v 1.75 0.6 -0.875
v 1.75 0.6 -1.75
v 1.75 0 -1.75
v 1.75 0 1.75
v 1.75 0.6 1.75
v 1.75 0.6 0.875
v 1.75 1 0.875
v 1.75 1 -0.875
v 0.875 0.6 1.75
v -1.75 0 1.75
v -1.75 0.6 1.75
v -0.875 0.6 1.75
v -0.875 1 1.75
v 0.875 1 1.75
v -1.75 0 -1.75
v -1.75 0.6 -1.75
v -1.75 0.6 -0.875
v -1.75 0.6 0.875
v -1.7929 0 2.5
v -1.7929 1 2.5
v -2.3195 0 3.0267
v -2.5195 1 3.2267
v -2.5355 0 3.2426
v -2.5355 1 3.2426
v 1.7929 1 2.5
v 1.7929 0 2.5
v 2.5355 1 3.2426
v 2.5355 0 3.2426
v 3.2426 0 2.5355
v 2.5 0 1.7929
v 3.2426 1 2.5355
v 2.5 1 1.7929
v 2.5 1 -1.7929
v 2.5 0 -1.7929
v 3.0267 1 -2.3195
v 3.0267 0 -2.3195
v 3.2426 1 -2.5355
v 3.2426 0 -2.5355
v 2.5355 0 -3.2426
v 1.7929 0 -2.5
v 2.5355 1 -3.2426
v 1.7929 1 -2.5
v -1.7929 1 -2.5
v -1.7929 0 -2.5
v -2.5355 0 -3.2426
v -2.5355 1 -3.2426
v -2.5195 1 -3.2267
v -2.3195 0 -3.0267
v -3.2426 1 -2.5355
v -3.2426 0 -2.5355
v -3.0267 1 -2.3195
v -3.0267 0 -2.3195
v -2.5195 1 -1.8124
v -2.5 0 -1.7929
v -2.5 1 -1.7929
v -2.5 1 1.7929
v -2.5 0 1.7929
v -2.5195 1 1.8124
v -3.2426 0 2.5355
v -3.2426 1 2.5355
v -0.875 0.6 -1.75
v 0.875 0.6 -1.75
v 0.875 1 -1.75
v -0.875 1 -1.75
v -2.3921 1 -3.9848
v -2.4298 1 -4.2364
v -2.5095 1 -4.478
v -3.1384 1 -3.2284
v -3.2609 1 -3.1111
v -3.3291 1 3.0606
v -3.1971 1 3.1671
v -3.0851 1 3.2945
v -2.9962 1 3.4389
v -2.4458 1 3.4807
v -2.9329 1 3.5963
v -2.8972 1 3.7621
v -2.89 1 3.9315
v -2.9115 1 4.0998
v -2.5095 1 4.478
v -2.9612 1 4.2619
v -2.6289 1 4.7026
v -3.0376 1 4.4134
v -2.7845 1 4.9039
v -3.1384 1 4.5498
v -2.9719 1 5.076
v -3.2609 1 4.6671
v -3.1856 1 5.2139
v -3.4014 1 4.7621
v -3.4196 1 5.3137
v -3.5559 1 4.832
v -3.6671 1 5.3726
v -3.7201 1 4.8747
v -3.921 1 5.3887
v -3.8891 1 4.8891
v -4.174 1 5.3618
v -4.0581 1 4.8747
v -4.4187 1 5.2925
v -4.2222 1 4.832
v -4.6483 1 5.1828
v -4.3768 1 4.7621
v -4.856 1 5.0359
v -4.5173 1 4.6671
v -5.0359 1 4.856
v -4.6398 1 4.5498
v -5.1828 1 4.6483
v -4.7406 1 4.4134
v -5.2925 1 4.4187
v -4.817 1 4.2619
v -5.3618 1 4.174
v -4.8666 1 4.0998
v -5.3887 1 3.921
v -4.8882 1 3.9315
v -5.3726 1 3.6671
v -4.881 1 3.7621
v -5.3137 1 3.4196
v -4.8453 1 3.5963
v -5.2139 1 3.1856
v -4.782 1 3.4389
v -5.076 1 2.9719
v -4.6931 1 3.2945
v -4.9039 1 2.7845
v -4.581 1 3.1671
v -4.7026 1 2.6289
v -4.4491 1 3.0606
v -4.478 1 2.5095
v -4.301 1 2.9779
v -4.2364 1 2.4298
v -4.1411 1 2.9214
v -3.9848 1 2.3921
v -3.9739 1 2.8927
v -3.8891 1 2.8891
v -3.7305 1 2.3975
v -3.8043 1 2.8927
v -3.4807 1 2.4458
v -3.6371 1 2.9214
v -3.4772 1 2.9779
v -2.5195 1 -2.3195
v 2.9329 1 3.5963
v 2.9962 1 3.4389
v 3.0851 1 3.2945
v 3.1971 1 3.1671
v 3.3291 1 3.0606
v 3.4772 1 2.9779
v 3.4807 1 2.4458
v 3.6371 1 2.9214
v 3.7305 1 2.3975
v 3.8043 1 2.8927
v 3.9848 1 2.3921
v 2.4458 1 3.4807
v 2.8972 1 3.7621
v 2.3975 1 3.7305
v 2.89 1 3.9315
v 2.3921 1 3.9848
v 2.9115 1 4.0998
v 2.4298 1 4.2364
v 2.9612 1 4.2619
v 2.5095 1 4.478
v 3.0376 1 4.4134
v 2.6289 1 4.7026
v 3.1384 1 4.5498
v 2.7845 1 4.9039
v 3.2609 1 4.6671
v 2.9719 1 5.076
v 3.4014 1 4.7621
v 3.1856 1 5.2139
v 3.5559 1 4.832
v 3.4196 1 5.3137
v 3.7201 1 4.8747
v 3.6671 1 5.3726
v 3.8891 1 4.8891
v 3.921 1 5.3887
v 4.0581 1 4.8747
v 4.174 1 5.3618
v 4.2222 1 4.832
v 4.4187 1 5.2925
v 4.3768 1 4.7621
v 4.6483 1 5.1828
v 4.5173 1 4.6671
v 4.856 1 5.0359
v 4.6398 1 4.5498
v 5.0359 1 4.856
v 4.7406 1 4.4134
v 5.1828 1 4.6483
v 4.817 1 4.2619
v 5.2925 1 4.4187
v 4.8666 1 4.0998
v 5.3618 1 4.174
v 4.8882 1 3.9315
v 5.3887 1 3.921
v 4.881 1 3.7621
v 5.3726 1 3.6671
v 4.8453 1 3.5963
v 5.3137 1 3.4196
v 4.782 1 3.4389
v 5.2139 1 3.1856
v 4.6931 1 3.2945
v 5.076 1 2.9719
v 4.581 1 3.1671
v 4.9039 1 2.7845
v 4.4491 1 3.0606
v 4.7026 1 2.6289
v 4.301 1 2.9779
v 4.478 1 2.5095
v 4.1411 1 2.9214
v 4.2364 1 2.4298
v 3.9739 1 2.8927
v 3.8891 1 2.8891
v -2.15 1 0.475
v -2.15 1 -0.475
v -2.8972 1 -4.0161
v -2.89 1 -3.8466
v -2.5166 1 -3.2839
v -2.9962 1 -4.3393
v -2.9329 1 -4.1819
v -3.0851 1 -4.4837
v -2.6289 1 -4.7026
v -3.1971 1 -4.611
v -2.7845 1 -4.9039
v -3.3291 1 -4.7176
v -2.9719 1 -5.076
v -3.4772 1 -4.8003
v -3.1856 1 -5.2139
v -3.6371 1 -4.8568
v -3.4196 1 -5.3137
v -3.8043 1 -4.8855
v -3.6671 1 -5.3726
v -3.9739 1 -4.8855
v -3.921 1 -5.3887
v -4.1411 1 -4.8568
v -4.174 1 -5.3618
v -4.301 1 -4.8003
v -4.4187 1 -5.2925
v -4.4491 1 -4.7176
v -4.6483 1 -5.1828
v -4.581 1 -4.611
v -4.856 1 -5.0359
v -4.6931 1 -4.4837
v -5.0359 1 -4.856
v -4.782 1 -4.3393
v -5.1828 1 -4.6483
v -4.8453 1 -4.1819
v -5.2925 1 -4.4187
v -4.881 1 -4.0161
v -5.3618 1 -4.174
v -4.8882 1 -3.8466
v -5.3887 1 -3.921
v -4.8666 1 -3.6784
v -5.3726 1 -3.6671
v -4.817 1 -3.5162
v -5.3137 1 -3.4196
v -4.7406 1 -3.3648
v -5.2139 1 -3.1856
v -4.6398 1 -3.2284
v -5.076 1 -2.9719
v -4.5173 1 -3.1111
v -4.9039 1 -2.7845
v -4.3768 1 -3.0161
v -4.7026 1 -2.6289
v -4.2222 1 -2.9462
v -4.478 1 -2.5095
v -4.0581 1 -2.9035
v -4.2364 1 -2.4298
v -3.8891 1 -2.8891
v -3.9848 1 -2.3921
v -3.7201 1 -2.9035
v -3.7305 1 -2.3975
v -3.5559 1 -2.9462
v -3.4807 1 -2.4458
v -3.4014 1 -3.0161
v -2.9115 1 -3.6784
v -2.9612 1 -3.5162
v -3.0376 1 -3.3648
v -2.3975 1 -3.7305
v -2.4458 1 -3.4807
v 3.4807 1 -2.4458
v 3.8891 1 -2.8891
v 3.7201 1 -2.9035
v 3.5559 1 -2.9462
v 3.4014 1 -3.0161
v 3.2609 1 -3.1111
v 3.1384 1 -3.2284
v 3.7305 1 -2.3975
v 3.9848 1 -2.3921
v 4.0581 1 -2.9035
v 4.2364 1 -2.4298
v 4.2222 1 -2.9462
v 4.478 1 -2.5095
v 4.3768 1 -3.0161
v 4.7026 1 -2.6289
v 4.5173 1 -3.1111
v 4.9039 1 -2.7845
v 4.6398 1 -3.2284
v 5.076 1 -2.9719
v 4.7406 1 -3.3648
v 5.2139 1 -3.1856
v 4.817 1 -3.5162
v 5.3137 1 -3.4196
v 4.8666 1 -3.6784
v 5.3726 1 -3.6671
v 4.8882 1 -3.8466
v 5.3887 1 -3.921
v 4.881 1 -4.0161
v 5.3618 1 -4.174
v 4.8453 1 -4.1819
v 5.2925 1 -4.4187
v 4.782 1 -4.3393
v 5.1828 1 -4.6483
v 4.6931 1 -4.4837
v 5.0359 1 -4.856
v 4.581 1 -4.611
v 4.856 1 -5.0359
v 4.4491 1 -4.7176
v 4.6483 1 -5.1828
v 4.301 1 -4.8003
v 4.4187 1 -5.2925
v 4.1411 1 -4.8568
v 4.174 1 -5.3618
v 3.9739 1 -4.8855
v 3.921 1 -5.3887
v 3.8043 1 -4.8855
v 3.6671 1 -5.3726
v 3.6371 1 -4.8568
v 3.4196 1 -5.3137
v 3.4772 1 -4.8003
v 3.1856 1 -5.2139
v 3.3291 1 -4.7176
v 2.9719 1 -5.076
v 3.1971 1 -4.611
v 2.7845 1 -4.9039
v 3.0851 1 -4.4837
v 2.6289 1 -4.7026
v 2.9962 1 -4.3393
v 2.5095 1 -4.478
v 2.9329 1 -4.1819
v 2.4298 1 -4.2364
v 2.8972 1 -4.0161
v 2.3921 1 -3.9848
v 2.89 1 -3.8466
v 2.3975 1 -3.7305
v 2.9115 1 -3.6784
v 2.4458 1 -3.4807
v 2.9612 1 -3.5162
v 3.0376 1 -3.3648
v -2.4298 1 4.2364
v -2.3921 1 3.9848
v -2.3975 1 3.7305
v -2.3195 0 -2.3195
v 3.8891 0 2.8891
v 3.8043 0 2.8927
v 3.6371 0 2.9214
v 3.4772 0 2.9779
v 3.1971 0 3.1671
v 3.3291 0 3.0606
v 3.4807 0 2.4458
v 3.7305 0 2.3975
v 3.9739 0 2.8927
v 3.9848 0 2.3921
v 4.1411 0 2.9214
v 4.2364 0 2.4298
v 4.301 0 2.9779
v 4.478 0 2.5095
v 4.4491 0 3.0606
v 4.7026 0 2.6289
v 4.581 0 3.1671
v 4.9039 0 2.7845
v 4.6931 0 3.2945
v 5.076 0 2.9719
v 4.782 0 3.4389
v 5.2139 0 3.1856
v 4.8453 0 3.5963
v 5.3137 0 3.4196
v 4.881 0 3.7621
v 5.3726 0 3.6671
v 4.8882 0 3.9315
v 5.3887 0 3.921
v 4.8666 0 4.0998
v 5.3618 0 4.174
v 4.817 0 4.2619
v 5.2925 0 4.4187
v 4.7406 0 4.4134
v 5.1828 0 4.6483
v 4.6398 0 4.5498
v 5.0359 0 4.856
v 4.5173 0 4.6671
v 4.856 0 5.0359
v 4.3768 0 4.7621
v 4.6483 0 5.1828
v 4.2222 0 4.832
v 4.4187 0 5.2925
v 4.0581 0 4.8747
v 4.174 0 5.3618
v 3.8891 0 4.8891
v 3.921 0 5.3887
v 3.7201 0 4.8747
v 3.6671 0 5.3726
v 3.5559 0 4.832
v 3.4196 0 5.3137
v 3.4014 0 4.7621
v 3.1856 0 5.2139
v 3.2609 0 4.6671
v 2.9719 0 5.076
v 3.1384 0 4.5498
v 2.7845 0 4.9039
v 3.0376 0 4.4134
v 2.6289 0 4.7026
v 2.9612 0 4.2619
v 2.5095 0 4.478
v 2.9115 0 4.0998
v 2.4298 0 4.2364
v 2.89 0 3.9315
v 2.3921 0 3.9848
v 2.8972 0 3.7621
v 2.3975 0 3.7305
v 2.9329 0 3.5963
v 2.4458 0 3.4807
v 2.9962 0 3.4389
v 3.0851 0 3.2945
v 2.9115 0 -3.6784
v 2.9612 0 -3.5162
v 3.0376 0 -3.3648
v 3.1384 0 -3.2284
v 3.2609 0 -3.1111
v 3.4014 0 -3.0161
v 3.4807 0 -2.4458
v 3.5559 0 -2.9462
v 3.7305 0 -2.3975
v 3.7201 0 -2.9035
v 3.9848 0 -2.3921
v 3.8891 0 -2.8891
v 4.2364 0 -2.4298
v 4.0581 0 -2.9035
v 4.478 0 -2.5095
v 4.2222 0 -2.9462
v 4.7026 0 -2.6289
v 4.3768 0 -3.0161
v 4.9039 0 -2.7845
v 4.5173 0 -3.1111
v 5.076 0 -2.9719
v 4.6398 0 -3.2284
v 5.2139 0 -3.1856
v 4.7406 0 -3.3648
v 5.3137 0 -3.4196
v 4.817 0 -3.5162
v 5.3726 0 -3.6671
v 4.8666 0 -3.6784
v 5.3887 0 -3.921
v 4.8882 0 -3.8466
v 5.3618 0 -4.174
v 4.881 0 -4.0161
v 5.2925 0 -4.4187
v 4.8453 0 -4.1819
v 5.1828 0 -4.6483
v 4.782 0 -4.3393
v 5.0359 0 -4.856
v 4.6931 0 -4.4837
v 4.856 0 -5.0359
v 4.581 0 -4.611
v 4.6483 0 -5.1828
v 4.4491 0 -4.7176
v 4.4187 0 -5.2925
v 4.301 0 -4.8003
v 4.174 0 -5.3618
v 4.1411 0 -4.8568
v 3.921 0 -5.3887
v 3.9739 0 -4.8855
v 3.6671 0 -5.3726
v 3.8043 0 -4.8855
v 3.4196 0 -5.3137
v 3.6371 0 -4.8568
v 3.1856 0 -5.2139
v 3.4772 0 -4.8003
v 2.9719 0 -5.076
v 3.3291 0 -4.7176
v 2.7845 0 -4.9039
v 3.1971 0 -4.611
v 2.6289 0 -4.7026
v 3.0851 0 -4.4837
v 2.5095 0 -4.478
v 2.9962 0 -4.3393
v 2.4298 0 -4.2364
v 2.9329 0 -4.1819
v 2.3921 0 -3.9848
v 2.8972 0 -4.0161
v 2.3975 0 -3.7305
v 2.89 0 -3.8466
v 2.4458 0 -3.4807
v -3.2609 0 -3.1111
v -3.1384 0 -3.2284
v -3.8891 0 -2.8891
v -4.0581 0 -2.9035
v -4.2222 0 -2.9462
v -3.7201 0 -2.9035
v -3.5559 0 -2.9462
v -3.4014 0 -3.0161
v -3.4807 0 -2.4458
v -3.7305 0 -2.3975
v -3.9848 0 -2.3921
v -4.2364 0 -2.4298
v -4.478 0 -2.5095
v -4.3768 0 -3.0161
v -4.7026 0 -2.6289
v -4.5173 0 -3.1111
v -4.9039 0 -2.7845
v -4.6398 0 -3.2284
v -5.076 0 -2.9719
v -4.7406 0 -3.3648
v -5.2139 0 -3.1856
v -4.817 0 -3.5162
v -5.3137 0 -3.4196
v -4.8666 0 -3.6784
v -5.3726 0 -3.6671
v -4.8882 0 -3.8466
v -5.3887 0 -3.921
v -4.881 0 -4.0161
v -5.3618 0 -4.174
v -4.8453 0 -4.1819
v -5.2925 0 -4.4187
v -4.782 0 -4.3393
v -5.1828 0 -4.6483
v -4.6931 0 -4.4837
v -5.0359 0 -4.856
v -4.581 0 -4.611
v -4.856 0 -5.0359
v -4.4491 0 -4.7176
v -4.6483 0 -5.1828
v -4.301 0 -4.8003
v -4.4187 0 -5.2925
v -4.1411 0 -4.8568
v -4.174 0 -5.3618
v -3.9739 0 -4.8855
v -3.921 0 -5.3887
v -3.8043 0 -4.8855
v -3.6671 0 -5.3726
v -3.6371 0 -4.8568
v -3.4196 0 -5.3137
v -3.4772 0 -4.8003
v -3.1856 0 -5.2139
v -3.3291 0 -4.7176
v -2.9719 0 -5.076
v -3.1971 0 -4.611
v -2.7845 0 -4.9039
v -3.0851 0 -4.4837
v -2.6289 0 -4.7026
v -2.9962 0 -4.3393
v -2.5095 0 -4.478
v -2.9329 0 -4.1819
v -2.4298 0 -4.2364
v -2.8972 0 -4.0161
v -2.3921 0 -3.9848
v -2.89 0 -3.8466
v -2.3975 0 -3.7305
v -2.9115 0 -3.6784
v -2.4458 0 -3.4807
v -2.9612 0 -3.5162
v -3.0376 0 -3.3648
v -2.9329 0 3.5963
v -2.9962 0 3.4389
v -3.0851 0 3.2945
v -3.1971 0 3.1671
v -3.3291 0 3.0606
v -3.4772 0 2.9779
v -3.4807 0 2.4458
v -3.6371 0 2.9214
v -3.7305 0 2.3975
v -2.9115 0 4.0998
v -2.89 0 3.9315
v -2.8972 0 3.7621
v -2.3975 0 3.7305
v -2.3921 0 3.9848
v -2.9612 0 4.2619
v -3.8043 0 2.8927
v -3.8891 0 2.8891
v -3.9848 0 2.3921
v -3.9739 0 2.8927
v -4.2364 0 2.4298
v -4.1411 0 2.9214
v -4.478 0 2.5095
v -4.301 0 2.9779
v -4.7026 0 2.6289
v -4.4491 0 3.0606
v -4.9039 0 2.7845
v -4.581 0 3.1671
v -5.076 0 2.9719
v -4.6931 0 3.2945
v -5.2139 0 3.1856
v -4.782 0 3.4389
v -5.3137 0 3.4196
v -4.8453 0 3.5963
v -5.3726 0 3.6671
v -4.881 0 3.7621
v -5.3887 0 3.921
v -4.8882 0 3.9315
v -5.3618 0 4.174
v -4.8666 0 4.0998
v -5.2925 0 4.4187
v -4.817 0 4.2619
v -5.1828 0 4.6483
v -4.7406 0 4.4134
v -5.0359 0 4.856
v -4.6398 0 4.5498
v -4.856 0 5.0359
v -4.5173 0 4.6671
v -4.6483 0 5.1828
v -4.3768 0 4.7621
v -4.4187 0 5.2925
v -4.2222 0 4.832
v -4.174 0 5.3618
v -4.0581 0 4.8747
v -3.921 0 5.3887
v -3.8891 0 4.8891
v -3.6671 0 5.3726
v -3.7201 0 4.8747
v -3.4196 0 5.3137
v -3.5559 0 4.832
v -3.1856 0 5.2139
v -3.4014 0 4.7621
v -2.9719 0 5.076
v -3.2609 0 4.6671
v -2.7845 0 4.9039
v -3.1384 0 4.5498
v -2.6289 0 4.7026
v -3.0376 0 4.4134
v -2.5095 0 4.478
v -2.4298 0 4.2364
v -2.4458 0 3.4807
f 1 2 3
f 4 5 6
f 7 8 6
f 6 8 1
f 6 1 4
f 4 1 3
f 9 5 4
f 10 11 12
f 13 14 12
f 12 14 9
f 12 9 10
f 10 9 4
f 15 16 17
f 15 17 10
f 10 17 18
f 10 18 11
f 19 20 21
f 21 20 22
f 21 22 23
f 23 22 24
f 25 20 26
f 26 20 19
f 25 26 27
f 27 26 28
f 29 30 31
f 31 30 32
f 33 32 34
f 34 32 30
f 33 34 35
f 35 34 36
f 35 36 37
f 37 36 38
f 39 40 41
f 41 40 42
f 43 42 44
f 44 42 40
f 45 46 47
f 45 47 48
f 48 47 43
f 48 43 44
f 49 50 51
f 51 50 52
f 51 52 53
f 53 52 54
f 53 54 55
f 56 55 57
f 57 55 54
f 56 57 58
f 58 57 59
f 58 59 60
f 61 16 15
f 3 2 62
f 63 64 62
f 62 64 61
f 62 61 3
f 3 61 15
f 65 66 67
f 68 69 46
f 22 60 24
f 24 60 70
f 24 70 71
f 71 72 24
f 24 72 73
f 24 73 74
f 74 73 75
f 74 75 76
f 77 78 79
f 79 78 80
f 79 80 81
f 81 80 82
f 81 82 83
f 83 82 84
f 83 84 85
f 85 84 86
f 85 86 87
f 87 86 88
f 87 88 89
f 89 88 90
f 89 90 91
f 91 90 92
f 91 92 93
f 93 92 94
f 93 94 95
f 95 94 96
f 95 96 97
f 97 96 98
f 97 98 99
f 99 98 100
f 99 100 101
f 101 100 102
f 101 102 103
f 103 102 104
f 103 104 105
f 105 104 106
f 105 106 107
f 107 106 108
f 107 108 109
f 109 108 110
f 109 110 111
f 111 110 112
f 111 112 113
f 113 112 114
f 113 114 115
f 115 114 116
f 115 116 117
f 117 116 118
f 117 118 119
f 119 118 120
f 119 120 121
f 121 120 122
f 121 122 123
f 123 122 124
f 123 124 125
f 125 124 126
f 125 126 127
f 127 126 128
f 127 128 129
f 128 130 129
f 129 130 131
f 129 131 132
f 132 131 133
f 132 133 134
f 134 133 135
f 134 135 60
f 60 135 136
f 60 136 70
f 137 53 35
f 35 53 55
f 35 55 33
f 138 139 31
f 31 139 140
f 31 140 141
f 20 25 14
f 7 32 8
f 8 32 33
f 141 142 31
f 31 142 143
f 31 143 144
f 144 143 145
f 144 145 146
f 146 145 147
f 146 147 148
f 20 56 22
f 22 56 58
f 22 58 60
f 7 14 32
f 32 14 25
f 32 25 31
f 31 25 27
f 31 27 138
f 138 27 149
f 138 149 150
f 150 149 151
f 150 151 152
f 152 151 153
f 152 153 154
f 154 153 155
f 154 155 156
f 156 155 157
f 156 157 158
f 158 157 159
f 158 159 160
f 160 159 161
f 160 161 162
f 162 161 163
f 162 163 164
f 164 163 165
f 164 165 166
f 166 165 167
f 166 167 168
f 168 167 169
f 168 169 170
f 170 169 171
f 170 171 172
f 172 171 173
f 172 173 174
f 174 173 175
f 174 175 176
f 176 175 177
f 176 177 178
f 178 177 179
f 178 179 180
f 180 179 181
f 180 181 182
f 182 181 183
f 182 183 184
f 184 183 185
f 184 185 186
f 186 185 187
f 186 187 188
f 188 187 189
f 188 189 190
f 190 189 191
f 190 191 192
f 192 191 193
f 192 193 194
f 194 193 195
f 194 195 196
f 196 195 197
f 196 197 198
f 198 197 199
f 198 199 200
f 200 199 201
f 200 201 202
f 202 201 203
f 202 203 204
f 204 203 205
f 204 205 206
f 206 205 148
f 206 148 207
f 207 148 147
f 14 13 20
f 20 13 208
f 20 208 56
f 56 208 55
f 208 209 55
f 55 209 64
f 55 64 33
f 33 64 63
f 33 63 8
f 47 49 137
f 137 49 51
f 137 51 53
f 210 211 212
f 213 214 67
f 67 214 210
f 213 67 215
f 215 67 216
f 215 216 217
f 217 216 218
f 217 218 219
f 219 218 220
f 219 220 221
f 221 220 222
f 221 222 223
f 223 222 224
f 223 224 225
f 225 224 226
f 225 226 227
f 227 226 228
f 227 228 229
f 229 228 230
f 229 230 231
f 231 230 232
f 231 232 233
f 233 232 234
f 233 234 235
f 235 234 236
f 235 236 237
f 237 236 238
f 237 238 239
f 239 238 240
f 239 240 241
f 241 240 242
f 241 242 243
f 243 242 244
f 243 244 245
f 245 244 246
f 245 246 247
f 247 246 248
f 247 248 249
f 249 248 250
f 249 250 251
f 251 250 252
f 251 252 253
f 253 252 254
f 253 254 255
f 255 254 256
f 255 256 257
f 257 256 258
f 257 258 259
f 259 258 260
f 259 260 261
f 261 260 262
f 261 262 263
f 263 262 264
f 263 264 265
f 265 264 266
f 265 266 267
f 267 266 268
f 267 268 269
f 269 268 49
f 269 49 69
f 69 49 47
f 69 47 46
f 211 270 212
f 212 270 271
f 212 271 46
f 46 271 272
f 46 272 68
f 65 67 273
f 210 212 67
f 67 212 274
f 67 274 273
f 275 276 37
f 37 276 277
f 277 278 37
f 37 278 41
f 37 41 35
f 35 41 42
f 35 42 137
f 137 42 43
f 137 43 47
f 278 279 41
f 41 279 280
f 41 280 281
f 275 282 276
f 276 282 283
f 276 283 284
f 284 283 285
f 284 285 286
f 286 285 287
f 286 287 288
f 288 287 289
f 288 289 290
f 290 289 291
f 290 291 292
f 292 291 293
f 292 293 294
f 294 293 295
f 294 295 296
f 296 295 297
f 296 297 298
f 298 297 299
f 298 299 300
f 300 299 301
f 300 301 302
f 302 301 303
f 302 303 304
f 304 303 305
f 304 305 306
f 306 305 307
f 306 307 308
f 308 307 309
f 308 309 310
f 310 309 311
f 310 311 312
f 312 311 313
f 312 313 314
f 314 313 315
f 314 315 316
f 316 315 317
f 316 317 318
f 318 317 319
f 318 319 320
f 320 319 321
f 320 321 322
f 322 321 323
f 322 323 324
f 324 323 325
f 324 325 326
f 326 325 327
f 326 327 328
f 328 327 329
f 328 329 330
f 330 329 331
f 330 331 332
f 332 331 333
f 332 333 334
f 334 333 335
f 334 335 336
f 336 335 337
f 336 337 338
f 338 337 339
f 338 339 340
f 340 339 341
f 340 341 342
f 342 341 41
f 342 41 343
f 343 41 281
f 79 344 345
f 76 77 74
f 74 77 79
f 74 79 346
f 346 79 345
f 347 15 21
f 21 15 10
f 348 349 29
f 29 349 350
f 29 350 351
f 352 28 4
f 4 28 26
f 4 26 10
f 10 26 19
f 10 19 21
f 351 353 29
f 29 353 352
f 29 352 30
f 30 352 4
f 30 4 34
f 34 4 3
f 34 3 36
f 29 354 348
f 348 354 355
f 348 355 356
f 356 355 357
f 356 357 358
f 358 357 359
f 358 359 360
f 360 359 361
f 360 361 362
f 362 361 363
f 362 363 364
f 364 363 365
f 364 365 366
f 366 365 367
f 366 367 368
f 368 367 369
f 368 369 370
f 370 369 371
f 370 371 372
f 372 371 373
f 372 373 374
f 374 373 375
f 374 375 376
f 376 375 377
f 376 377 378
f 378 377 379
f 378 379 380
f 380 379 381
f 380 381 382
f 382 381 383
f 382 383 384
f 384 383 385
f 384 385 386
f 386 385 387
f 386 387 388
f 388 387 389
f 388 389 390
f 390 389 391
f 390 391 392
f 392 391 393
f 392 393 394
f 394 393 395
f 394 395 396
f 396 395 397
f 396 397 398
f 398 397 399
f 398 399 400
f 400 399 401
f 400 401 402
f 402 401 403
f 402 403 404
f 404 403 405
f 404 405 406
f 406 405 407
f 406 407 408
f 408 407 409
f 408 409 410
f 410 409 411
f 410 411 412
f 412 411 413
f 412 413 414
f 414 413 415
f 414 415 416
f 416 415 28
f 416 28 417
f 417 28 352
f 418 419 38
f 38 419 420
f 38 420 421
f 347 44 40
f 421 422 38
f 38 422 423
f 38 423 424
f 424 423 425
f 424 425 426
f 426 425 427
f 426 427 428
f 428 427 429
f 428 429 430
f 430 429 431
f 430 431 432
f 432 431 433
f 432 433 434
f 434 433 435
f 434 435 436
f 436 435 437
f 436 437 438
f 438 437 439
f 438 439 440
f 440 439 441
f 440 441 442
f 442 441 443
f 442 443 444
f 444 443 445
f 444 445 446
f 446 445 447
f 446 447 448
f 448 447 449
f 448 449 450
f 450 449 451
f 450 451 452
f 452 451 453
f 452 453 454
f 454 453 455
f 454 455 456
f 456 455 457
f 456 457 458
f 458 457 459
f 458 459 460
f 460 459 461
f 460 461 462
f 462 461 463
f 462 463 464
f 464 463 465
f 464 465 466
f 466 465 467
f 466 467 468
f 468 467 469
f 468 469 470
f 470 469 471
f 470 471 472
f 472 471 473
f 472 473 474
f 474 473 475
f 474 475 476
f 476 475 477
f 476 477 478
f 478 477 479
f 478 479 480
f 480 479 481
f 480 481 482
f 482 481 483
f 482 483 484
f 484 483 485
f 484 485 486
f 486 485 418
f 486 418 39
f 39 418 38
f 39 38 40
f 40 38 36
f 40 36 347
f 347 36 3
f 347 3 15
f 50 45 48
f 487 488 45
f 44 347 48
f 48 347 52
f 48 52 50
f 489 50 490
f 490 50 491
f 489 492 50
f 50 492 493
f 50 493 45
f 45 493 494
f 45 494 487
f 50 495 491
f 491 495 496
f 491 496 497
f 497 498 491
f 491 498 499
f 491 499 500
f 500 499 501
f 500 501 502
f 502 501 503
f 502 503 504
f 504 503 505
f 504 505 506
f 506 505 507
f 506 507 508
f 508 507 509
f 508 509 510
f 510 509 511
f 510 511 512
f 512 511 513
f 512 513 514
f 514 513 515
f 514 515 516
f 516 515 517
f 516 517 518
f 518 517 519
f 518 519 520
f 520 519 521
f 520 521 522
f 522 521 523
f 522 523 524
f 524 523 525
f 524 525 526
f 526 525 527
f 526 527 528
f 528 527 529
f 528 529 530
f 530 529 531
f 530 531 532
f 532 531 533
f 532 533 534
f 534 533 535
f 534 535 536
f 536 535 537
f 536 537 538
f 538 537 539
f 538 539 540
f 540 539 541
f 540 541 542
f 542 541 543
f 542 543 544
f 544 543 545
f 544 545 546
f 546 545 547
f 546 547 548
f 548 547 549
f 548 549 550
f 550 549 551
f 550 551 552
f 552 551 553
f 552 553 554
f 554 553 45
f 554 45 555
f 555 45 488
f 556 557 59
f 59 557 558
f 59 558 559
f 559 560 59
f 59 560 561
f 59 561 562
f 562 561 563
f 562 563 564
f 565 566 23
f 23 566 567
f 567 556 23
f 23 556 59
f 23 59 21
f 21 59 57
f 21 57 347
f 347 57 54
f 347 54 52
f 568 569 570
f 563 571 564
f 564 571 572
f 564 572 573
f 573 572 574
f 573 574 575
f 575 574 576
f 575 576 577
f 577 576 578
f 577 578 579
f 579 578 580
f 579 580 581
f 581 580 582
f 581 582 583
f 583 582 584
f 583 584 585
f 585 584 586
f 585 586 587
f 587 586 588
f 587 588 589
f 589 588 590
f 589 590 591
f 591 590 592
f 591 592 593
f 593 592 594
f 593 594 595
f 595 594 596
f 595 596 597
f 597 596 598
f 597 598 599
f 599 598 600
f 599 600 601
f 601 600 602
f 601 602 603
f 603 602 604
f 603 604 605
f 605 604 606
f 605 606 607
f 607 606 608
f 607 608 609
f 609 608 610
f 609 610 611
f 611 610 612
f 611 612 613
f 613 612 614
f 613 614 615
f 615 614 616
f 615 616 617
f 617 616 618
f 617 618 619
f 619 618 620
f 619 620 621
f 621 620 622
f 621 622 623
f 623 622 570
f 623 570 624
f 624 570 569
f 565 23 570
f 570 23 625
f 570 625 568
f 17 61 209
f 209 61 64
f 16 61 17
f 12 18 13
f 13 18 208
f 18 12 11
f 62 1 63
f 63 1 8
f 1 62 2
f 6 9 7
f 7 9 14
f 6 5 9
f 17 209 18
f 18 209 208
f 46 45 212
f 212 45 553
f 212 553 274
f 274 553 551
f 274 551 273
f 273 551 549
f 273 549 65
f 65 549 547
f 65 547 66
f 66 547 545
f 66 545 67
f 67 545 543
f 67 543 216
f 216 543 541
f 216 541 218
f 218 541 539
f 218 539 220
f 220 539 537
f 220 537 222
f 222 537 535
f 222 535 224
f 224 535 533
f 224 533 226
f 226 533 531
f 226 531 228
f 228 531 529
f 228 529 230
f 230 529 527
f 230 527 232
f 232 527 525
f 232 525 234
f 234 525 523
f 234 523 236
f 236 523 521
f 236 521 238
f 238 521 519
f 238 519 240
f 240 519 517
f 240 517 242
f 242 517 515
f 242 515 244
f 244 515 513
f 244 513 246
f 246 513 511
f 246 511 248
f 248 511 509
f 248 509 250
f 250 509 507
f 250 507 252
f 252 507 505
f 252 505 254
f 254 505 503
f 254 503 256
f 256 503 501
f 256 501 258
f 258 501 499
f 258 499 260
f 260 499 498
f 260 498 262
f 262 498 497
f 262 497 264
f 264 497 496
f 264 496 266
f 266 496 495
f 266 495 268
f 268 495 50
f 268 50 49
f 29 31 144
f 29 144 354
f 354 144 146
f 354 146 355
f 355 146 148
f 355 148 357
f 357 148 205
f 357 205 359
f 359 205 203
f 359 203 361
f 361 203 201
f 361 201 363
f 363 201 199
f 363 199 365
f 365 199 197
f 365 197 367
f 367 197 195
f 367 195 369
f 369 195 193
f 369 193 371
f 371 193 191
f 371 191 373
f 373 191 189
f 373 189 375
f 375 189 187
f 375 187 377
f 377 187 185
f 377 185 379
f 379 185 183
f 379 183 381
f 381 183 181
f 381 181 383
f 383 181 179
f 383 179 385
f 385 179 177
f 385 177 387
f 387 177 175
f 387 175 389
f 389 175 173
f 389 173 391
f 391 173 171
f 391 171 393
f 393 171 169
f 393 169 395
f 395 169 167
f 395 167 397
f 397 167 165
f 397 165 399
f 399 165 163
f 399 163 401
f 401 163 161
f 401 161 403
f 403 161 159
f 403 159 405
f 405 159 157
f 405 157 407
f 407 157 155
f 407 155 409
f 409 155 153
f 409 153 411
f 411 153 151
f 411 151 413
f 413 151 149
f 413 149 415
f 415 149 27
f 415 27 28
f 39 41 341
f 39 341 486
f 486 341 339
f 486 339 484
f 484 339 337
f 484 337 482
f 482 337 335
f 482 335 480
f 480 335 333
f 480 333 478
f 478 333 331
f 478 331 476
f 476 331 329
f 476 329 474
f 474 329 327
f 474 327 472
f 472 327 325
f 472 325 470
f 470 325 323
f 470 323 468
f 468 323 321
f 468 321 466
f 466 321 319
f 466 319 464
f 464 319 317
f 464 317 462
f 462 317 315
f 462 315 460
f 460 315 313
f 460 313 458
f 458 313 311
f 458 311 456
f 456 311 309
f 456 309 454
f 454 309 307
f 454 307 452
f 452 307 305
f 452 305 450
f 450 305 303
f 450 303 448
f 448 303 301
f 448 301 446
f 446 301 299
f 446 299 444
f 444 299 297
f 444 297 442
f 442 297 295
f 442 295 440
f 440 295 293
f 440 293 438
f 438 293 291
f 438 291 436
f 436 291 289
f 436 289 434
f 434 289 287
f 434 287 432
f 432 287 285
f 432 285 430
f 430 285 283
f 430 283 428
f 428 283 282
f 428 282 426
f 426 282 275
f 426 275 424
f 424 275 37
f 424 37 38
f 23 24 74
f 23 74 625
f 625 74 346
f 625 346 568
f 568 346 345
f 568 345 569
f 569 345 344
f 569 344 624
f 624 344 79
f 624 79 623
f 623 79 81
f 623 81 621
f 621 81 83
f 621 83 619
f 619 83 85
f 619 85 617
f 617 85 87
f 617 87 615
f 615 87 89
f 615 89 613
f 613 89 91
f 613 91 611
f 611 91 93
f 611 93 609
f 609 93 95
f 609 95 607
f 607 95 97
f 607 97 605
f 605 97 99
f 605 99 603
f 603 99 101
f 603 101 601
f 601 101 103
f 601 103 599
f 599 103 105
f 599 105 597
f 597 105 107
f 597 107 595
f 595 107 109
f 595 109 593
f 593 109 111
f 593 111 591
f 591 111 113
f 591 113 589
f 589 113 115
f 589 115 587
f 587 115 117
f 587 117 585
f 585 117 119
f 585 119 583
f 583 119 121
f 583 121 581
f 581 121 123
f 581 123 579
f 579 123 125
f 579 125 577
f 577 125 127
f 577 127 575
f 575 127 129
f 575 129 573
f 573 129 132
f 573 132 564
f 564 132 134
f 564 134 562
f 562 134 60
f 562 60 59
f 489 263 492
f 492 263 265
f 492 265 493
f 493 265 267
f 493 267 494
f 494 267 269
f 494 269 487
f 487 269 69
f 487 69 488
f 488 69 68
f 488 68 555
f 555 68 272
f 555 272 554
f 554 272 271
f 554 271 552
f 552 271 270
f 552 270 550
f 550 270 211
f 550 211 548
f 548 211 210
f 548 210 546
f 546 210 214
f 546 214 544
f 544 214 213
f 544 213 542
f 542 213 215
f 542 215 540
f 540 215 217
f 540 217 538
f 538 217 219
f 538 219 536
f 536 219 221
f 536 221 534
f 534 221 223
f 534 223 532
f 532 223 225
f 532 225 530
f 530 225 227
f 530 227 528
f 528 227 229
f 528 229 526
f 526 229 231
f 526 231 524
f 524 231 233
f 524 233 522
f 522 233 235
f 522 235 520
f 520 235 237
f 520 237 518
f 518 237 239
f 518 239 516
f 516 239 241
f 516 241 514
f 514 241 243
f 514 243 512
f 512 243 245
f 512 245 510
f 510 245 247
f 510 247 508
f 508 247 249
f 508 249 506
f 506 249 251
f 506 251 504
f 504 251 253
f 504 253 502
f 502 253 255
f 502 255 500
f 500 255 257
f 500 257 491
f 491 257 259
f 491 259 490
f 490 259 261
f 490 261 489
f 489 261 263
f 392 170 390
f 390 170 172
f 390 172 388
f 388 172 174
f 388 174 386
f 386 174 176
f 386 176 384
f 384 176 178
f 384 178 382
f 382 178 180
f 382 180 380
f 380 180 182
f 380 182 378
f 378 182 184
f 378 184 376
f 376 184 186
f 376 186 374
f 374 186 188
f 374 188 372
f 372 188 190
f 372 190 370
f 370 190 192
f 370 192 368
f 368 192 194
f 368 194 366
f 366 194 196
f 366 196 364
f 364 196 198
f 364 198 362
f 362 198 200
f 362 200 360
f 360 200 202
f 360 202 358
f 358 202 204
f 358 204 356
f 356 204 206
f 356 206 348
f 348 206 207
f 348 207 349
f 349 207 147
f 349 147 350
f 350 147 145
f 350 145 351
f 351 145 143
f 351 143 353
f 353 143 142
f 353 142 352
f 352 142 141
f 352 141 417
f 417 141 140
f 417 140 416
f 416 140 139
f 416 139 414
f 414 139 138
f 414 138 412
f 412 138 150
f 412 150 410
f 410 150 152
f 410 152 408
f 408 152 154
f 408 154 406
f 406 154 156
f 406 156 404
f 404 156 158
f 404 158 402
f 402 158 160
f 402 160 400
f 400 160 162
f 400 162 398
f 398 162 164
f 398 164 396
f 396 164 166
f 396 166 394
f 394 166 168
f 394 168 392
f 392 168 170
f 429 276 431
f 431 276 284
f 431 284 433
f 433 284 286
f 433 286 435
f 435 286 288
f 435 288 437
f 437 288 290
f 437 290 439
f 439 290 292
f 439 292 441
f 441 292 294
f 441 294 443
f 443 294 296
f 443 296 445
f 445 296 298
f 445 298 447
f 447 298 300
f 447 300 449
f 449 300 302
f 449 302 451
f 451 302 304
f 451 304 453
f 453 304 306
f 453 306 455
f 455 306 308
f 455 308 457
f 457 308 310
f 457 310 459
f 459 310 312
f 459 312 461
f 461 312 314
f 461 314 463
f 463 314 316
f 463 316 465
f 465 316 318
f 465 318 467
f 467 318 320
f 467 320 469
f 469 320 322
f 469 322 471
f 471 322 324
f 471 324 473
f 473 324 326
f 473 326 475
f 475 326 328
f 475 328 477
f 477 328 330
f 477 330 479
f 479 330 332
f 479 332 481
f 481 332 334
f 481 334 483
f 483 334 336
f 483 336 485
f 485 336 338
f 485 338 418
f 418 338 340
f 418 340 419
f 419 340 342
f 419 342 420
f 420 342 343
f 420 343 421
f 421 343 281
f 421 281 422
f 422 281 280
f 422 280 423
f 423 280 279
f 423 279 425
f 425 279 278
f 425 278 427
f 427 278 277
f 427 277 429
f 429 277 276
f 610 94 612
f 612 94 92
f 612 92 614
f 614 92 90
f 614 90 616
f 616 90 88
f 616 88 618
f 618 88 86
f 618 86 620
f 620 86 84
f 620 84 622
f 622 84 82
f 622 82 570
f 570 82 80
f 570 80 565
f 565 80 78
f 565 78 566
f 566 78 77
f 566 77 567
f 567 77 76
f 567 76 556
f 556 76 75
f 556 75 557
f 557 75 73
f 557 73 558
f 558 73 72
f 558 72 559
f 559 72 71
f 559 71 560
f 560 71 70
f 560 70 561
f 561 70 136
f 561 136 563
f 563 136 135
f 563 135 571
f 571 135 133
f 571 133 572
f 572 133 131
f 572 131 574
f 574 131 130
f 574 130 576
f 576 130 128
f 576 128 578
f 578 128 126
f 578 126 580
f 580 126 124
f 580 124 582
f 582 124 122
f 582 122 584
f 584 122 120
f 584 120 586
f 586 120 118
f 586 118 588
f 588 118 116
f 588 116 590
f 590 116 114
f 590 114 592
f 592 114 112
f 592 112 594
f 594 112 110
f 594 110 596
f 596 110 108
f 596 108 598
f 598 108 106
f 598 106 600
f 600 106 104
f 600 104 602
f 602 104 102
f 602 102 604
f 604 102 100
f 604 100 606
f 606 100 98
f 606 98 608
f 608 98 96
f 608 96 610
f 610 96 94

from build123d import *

# Parameters (mm, degrees)
SKETCH1_R           = 0.5
SKETCH1_W           = 5
SKETCH1_H           = 5
SKETCH1_W_2         = 3.5
SKETCH1_H_2         = 3.5
BOSS_EXTRUDE3_DEPTH = 1
BOSS_EXTRUDE4_DEPTH = 0.4
CHAMFER1_SIZE       = 0.4
SKETCH5_R           = 1.5
BOSS_EXTRUDE5_DEPTH = 1
SKETCH6_R           = 1
CUT_EXTRUDE1_DEPTH  = 1


with BuildPart() as part:
    # Sketch1 → Boss-Extrude3 (new body)
    # profile 1 of 9: a face of its own
    with BuildSketch(Plane(origin=(0, 0, 0), x_dir=(1, 0, 0), z_dir=(0, 1, 0))):
        with Locations((-4.596194078, 4.596194078)):
            Circle(SKETCH1_R)
    # profile 2 of 9: a face of its own
    with BuildSketch(Plane(origin=(0, 0, 0), x_dir=(1, 0, 0), z_dir=(0, 1, 0))):
        with BuildLine():
            Line((-4.949747468, 4.242640687), (-2.5, 1.792893219))
            Line((-2.5, 1.792893219), (-2.5, 2.5))
            Line((-2.5, 2.5), (-1.792893219, 2.5))
            Line((-1.792893219, 2.5), (-4.242640687, 4.949747468))
            ThreePointArc((-4.242640687, 4.949747468), (-4.134254311, 4.787535794), (-4.096194078, 4.596194078))
            ThreePointArc((-4.096194078, 4.596194078), (-4.404852362, 4.134254311), (-4.949747468, 4.242640687))
        make_face()
    # profile 3 of 9: a face of its own
    with BuildSketch(Plane(origin=(0, 0, 0), x_dir=(1, 0, 0), z_dir=(0, 1, 0))):
        Rectangle(SKETCH1_W, SKETCH1_H)
        Rectangle(SKETCH1_W_2, SKETCH1_H_2, mode=Mode.SUBTRACT)
    # profile 4 of 9: a face of its own
    with BuildSketch(Plane(origin=(0, 0, 0), x_dir=(1, 0, 0), z_dir=(0, 1, 0))):
        with BuildLine():
            Line((2.5, 2.5), (2.5, 1.792893219))
            Line((2.5, 1.792893219), (4.949747468, 4.242640687))
            ThreePointArc((4.949747468, 4.242640687), (4.242640687, 4.242640687), (4.242640687, 4.949747468))
            Line((4.242640687, 4.949747468), (1.792893219, 2.5))
            Line((1.792893219, 2.5), (2.5, 2.5))
        make_face()
    # profile 5 of 9: a face of its own
    with BuildSketch(Plane(origin=(0, 0, 0), x_dir=(1, 0, 0), z_dir=(0, 1, 0))):
        with Locations((4.596194078, 4.596194078)):
            Circle(SKETCH1_R)
    # profile 6 of 9: a face of its own
    with BuildSketch(Plane(origin=(0, 0, 0), x_dir=(1, 0, 0), z_dir=(0, 1, 0))):
        with Locations((4.596194078, -4.596194078)):
            Circle(SKETCH1_R)
    # profile 7 of 9: a face of its own
    with BuildSketch(Plane(origin=(0, 0, 0), x_dir=(1, 0, 0), z_dir=(0, 1, 0))):
        with BuildLine():
            Line((2.5, -2.5), (1.792893219, -2.5))
            Line((1.792893219, -2.5), (4.242640687, -4.949747468))
            ThreePointArc((4.242640687, -4.949747468), (4.242640687, -4.242640687), (4.949747468, -4.242640687))
            Line((4.949747468, -4.242640687), (2.5, -1.792893219))
            Line((2.5, -1.792893219), (2.5, -2.5))
        make_face()
    # profile 8 of 9: a face of its own
    with BuildSketch(Plane(origin=(0, 0, 0), x_dir=(1, 0, 0), z_dir=(0, 1, 0))):
        with BuildLine():
            Line((-1.792893219, -2.5), (-2.5, -2.5))
            Line((-2.5, -2.5), (-2.5, -1.792893219))
            Line((-2.5, -1.792893219), (-4.949747468, -4.242640687))
            ThreePointArc((-4.949747468, -4.242640687), (-4.404852362, -4.134254311), (-4.096194078, -4.596194078))
            ThreePointArc((-4.096194078, -4.596194078), (-4.134254311, -4.787535794), (-4.242640687, -4.949747468))
            Line((-4.242640687, -4.949747468), (-1.792893219, -2.5))
        make_face()
    # profile 9 of 9: a face of its own
    with BuildSketch(Plane(origin=(0, 0, 0), x_dir=(1, 0, 0), z_dir=(0, 1, 0))):
        with Locations((-4.596194078, -4.596194078)):
            Circle(SKETCH1_R)
    extrude(amount=BOSS_EXTRUDE3_DEPTH)

    # Sketch4 → Boss-Extrude4 (add)
    with BuildSketch(Plane(origin=(0, 1, 0), x_dir=(1, 0, 0), z_dir=(0, 1, 0))):
        Polygon((-1.75, 0.875), (-0.875, 1.75), (-1.75, 1.75), align=None)
        Polygon((1.75, -0.875), (1.75, -1.75), (0.875, -1.75), align=None)
        Polygon((0.875, 1.75), (1.75, 0.875), (1.75, 1.75), align=None)
        Polygon((-0.875, -1.75), (-1.75, -1.75), (-1.75, -0.875), align=None)
    extrude(amount=-BOSS_EXTRUDE4_DEPTH)

    # Chamfer1
    chamfer1_edges = [part.edges().sort_by_distance(p)[0] for p in [
        (-1.75, 1, 0),
    ]]
    chamfer(chamfer1_edges, length=CHAMFER1_SIZE)

    # Sketch5 → Boss-Extrude5 (add)
    with BuildSketch(Plane(origin=(0, 1, 0), x_dir=(1, 0, 0), z_dir=(0, 1, 0))):
        with Locations((-3.889087297, 3.889087297)):
            Circle(SKETCH5_R)
        with Locations((3.889087297, -3.889087297)):
            Circle(SKETCH5_R)
        with Locations((3.889087297, 3.889087297)):
            Circle(SKETCH5_R)
        with Locations((-3.889087297, -3.889087297)):
            Circle(SKETCH5_R)
    extrude(amount=-BOSS_EXTRUDE5_DEPTH)

    # Sketch6 → Cut-Extrude1 (cut)
    with BuildSketch(Plane(origin=(0, 1, 0), x_dir=(1, 0, 0), z_dir=(0, 1, 0))):
        with Locations(Location((-3.889087297, 3.889087297, 0), (0, 0, 270))):
            Circle(SKETCH6_R)
        with Locations(Location((3.889087297, -3.889087297, 0), (0, 0, 90))):
            Circle(SKETCH6_R)
        with Locations(Location((3.889087297, 3.889087297, 0), (0, 0, 270))):
            Circle(SKETCH6_R)
        with Locations(Location((-3.889087297, -3.889087297, 0), (0, 0, 90))):
            Circle(SKETCH6_R)
    extrude(amount=-CUT_EXTRUDE1_DEPTH, mode=Mode.SUBTRACT)


solid = part.part
